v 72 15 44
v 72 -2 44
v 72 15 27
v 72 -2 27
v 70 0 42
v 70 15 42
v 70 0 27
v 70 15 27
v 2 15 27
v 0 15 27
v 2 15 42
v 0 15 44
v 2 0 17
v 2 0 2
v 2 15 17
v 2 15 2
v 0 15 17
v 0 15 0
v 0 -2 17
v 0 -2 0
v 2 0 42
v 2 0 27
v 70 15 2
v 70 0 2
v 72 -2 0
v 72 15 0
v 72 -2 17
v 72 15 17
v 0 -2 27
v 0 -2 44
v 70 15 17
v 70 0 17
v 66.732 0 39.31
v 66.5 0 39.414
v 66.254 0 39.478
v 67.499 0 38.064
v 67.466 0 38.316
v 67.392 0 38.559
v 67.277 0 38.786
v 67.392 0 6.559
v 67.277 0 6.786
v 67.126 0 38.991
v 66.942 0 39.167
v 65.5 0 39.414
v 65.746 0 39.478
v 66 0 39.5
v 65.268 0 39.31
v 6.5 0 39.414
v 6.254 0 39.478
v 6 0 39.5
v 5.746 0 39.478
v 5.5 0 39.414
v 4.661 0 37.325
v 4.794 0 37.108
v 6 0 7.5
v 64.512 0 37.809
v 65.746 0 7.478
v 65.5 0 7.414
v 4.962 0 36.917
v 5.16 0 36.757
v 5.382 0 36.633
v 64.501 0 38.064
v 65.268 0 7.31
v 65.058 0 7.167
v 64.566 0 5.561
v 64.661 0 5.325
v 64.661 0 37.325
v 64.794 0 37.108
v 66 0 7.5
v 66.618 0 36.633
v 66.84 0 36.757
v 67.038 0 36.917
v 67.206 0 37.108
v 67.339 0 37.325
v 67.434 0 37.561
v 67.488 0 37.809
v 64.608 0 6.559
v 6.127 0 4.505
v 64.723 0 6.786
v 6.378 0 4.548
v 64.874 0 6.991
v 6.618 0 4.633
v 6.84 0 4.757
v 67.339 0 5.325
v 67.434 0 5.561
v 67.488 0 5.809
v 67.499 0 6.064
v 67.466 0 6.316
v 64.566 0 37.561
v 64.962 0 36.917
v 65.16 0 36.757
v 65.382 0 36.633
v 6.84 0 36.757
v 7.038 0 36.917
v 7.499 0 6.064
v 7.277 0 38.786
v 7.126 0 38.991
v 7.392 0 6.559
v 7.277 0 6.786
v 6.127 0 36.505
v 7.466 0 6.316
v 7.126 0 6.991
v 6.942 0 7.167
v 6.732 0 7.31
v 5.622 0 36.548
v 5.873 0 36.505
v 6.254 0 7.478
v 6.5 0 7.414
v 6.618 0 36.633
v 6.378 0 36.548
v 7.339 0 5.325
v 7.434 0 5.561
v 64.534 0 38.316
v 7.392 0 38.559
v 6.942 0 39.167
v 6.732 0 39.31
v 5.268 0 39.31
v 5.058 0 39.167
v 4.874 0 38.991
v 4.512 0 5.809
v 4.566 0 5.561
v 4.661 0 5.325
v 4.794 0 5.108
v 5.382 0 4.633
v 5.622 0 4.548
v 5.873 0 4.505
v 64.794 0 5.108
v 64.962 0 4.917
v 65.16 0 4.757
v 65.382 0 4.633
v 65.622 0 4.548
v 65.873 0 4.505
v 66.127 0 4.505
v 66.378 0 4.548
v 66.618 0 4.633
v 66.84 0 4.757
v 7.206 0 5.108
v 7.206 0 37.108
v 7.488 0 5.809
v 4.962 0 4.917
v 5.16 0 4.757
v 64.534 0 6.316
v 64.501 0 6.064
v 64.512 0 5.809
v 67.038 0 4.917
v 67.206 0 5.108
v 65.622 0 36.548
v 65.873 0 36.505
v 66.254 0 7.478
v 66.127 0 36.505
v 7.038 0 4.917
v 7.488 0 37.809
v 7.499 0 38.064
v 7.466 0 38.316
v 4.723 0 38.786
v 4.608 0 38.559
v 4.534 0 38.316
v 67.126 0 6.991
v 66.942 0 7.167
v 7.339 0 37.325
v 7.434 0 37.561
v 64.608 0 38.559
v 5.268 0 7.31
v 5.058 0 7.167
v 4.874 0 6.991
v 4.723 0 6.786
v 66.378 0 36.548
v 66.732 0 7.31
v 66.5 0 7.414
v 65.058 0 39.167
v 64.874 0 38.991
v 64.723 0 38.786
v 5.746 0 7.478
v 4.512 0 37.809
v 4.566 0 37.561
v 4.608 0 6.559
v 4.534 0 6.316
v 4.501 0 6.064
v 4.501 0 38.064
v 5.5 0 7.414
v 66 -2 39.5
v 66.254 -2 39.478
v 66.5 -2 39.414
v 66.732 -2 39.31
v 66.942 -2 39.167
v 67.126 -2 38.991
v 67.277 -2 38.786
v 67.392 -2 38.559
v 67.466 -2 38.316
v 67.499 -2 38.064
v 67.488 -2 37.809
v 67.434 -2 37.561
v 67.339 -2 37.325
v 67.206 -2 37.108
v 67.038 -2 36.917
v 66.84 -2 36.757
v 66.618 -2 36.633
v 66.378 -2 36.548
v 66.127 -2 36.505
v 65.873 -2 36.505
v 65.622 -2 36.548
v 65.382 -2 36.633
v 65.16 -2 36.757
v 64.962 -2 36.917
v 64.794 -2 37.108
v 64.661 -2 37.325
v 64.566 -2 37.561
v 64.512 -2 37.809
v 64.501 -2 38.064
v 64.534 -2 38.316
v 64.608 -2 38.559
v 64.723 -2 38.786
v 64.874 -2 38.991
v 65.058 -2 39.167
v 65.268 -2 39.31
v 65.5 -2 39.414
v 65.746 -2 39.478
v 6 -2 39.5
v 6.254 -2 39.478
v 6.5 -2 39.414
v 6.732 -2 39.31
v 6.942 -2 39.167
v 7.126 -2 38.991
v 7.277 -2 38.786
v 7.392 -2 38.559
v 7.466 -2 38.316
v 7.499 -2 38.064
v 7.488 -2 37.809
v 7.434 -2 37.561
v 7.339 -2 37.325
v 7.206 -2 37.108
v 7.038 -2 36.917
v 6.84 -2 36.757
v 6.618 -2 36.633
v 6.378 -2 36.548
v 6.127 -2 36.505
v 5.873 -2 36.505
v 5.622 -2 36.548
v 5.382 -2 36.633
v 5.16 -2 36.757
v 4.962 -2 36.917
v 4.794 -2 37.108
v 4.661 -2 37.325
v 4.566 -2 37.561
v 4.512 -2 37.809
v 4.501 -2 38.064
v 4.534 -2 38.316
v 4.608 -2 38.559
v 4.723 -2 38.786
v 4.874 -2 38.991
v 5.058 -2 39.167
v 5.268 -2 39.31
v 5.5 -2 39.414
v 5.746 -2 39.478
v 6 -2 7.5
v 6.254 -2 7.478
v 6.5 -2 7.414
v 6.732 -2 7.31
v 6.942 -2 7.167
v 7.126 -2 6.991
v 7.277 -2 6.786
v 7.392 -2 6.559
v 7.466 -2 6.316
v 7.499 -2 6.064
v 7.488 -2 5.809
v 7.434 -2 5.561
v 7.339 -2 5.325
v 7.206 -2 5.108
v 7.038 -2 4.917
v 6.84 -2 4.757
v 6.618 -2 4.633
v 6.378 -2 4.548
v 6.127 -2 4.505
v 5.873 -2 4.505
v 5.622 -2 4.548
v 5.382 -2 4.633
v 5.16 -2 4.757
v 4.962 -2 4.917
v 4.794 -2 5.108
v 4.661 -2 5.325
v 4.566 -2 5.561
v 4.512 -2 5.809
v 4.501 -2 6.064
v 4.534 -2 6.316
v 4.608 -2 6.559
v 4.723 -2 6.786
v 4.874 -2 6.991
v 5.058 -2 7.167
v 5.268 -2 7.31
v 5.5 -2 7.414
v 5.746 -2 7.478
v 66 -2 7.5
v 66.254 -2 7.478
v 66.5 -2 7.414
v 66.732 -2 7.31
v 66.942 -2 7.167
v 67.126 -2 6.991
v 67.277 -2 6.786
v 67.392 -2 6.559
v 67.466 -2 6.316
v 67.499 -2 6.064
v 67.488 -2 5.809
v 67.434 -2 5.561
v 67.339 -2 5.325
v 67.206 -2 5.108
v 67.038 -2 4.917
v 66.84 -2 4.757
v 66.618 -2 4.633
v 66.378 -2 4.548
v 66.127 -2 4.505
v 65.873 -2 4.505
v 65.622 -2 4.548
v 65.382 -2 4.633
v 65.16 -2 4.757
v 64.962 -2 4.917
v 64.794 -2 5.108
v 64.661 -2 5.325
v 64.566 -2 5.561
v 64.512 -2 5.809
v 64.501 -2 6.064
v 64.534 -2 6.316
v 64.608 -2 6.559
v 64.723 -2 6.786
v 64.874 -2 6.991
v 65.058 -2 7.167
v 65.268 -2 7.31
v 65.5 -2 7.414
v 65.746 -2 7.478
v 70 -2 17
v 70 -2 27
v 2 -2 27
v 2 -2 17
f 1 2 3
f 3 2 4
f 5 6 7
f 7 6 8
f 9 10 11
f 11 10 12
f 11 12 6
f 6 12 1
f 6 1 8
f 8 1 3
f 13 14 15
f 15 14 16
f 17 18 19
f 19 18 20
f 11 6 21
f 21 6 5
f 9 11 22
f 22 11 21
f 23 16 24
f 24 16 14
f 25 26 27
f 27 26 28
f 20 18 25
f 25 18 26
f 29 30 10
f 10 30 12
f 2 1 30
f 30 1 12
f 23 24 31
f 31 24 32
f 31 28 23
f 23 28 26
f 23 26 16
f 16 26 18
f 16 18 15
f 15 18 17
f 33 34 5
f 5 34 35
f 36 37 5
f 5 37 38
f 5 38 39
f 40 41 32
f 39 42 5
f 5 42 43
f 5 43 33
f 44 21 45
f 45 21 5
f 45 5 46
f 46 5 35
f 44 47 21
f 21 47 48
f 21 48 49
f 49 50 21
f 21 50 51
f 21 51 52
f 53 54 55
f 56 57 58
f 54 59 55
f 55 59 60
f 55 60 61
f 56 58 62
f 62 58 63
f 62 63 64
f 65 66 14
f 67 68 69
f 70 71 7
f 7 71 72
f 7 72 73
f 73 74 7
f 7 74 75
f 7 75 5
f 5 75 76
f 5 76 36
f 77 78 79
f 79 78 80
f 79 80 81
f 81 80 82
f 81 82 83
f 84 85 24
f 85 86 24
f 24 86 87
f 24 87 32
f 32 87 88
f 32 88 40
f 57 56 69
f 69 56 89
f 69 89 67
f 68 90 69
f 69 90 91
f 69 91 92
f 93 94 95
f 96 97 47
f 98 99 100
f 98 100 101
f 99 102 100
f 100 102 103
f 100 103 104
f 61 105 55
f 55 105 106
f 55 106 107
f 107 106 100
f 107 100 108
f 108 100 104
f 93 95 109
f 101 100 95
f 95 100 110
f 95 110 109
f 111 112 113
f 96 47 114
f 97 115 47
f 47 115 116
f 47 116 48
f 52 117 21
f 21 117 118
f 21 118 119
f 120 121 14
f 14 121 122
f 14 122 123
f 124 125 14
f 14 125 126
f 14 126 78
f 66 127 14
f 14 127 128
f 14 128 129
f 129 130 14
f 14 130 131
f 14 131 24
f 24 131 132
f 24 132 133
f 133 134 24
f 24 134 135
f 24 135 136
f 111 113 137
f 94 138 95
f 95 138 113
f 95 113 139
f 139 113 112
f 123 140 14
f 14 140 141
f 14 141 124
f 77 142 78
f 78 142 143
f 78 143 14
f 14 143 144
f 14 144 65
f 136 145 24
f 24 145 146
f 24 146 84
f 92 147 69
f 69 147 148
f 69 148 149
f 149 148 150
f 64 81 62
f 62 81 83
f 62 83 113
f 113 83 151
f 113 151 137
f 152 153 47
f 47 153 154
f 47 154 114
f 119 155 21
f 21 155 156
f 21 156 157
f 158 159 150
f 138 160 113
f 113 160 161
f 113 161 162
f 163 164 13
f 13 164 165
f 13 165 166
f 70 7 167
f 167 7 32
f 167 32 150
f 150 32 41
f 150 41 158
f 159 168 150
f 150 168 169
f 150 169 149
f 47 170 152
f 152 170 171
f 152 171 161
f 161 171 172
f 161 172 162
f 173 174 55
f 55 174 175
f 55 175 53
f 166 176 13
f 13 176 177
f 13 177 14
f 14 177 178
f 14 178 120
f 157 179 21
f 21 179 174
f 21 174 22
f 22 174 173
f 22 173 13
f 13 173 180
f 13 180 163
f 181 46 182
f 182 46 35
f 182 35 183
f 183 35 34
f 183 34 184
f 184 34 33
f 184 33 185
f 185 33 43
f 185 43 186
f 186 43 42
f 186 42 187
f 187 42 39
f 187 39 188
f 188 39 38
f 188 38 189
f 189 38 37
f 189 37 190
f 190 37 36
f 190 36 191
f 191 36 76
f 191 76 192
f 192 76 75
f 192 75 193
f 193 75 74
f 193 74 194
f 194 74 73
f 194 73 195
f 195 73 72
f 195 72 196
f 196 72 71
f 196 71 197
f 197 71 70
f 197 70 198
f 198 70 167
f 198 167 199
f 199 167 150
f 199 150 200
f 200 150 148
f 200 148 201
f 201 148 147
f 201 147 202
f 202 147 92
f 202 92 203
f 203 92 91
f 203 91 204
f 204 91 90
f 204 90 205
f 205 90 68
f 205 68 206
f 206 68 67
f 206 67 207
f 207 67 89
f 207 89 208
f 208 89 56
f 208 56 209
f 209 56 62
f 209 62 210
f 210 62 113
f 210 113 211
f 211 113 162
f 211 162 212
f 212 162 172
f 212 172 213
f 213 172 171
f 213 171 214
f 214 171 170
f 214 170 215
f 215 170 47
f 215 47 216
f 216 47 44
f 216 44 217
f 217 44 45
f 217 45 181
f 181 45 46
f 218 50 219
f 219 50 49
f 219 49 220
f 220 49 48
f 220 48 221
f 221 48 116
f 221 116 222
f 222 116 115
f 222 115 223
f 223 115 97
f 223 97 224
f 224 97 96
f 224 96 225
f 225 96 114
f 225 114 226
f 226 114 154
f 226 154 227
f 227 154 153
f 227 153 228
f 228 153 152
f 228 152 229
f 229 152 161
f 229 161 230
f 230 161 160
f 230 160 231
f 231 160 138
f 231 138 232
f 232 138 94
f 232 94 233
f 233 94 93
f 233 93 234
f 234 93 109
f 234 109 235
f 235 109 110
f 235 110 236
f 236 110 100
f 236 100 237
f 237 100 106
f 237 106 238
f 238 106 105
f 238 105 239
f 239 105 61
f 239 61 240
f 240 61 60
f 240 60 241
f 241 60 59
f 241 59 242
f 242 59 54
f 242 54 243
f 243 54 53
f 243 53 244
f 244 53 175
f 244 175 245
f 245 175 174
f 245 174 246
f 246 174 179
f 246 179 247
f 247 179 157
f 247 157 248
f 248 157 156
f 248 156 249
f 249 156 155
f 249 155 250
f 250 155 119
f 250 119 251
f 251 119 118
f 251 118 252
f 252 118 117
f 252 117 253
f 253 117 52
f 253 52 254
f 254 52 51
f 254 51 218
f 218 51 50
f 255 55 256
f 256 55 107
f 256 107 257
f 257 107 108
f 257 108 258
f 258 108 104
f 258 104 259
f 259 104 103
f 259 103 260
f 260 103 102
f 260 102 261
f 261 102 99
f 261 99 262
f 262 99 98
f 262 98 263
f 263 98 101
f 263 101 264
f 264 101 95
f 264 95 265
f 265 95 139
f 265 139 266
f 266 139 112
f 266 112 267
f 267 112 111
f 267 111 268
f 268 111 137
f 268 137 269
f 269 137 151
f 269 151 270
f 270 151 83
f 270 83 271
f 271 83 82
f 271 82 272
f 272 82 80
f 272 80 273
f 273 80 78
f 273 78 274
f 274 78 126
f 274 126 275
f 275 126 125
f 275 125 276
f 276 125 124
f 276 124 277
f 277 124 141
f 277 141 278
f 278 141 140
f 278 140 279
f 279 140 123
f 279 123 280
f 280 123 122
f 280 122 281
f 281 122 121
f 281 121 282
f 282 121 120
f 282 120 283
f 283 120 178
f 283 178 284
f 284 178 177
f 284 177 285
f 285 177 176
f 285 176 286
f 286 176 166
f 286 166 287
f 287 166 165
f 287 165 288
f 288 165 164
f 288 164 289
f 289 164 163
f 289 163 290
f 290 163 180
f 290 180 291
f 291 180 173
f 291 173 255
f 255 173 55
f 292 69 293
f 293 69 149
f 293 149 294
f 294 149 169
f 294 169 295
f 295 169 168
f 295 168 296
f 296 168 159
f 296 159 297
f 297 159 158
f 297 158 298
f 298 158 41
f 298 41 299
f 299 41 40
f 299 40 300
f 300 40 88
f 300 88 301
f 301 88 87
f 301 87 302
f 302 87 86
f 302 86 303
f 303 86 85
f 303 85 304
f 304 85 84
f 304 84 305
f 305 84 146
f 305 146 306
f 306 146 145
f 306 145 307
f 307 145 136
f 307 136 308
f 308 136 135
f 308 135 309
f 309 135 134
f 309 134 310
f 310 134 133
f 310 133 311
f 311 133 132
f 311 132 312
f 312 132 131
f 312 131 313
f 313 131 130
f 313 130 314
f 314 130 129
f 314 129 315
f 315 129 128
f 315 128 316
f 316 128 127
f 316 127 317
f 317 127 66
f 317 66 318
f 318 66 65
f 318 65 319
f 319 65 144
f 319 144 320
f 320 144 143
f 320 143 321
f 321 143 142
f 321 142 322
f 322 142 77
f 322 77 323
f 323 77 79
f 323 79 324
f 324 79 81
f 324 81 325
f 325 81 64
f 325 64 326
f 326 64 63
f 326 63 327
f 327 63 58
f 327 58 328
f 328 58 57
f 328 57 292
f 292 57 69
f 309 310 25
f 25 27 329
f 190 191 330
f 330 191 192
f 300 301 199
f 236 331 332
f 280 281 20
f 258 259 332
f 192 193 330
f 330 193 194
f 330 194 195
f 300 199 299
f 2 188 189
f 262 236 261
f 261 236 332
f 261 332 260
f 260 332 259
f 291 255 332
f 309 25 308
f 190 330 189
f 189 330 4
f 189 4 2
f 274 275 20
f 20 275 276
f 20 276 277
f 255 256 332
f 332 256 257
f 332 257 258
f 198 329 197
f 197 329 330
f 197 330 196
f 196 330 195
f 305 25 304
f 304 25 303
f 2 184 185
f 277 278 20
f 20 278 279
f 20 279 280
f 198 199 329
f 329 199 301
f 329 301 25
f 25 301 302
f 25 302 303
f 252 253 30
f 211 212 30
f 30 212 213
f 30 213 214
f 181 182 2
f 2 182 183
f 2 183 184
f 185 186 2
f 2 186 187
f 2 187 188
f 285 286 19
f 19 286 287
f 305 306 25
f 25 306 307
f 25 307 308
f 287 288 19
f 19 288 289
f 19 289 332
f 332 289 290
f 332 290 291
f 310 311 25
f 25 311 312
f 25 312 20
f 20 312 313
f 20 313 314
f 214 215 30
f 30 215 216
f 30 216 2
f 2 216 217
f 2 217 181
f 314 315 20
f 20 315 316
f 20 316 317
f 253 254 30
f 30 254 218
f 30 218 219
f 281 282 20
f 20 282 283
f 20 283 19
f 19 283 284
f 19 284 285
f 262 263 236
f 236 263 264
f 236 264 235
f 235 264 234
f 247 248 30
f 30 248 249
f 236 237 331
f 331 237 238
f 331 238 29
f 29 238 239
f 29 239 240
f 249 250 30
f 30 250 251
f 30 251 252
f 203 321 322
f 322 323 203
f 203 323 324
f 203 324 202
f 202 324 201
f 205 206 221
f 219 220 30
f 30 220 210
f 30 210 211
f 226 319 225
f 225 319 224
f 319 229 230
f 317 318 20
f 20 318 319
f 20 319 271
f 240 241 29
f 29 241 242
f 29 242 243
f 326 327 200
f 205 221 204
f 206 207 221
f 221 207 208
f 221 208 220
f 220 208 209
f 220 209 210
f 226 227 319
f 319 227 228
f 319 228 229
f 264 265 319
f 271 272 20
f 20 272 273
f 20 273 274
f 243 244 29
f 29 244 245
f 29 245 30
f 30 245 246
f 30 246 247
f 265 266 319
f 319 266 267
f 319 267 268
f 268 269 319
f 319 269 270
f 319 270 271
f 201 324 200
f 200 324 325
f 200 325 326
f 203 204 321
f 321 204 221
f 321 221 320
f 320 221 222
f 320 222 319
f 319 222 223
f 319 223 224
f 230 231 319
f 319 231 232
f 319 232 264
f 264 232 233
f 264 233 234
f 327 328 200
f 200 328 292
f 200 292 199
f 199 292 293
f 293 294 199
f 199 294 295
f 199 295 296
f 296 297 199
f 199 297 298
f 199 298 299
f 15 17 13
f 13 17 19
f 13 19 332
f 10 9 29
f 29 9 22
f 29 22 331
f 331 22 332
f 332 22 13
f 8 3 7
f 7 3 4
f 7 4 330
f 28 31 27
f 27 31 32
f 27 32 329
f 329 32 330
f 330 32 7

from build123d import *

# Parameters (mm, degrees)
SKETCH_2_W          = 72
SKETCH_2_H          = 44
SKETCH_2_W_2        = 68
SKETCH_2_H_2        = 40
EXTRUDE_1_DEPTH     = 15
SKETCH_2_3_W        = 72
SKETCH_2_3_H        = 44
SKETCH_2_3_R        = 1.5
EXTRUDE_2_DEPTH     = 2
SKETCH_4_W          = 10
SKETCH_4_H          = 17
CUT_EXTRUDE_1_DEPTH = 2
SKETCH_5_W          = 10
SKETCH_5_H          = 17
CUT_EXTRUDE_2_DEPTH = 2


with BuildPart() as part:
    # 草图2 → 凸台-拉伸1 (new body)
    with BuildSketch(Plane(origin=(0, 0, 0), x_dir=(1, 0, 0), z_dir=(0, 1, 0))):
        with Locations((36, -22)):
            Rectangle(SKETCH_2_W, SKETCH_2_H)
        with Locations((36, -22)):
            Rectangle(SKETCH_2_W_2, SKETCH_2_H_2, mode=Mode.SUBTRACT)
    extrude(amount=EXTRUDE_1_DEPTH)

    # 草图2<3> → 凸台-拉伸2 (add)
    with BuildSketch(Plane(origin=(0, 0, 0), x_dir=(1, 0, 0), z_dir=(0, 1, 0))):
        with Locations((36, -22)):
            Rectangle(SKETCH_2_3_W, SKETCH_2_3_H)
        with Locations((6, -38)):
            Circle(SKETCH_2_3_R, mode=Mode.SUBTRACT)
        with Locations((66, -38)):
            Circle(SKETCH_2_3_R, mode=Mode.SUBTRACT)
        with Locations((6, -6)):
            Circle(SKETCH_2_3_R, mode=Mode.SUBTRACT)
        with Locations((66, -6)):
            Circle(SKETCH_2_3_R, mode=Mode.SUBTRACT)
    extrude(amount=-EXTRUDE_2_DEPTH)

    # 草图4 → 切除-拉伸1 (cut)
    with BuildSketch(Plane.ZY):
        with Locations((22, 6.5)):
            Rectangle(SKETCH_4_W, SKETCH_4_H)
    extrude(amount=-CUT_EXTRUDE_1_DEPTH, mode=Mode.SUBTRACT)

    # 草图5 → 切除-拉伸2 (cut)
    with BuildSketch(Plane(origin=(72, 0, 0), x_dir=(0, 0, -1), z_dir=(1, 0, 0))):
        with Locations((-22, 6.5)):
            Rectangle(SKETCH_5_W, SKETCH_5_H)
    extrude(amount=-CUT_EXTRUDE_2_DEPTH, mode=Mode.SUBTRACT)


solid = part.part
